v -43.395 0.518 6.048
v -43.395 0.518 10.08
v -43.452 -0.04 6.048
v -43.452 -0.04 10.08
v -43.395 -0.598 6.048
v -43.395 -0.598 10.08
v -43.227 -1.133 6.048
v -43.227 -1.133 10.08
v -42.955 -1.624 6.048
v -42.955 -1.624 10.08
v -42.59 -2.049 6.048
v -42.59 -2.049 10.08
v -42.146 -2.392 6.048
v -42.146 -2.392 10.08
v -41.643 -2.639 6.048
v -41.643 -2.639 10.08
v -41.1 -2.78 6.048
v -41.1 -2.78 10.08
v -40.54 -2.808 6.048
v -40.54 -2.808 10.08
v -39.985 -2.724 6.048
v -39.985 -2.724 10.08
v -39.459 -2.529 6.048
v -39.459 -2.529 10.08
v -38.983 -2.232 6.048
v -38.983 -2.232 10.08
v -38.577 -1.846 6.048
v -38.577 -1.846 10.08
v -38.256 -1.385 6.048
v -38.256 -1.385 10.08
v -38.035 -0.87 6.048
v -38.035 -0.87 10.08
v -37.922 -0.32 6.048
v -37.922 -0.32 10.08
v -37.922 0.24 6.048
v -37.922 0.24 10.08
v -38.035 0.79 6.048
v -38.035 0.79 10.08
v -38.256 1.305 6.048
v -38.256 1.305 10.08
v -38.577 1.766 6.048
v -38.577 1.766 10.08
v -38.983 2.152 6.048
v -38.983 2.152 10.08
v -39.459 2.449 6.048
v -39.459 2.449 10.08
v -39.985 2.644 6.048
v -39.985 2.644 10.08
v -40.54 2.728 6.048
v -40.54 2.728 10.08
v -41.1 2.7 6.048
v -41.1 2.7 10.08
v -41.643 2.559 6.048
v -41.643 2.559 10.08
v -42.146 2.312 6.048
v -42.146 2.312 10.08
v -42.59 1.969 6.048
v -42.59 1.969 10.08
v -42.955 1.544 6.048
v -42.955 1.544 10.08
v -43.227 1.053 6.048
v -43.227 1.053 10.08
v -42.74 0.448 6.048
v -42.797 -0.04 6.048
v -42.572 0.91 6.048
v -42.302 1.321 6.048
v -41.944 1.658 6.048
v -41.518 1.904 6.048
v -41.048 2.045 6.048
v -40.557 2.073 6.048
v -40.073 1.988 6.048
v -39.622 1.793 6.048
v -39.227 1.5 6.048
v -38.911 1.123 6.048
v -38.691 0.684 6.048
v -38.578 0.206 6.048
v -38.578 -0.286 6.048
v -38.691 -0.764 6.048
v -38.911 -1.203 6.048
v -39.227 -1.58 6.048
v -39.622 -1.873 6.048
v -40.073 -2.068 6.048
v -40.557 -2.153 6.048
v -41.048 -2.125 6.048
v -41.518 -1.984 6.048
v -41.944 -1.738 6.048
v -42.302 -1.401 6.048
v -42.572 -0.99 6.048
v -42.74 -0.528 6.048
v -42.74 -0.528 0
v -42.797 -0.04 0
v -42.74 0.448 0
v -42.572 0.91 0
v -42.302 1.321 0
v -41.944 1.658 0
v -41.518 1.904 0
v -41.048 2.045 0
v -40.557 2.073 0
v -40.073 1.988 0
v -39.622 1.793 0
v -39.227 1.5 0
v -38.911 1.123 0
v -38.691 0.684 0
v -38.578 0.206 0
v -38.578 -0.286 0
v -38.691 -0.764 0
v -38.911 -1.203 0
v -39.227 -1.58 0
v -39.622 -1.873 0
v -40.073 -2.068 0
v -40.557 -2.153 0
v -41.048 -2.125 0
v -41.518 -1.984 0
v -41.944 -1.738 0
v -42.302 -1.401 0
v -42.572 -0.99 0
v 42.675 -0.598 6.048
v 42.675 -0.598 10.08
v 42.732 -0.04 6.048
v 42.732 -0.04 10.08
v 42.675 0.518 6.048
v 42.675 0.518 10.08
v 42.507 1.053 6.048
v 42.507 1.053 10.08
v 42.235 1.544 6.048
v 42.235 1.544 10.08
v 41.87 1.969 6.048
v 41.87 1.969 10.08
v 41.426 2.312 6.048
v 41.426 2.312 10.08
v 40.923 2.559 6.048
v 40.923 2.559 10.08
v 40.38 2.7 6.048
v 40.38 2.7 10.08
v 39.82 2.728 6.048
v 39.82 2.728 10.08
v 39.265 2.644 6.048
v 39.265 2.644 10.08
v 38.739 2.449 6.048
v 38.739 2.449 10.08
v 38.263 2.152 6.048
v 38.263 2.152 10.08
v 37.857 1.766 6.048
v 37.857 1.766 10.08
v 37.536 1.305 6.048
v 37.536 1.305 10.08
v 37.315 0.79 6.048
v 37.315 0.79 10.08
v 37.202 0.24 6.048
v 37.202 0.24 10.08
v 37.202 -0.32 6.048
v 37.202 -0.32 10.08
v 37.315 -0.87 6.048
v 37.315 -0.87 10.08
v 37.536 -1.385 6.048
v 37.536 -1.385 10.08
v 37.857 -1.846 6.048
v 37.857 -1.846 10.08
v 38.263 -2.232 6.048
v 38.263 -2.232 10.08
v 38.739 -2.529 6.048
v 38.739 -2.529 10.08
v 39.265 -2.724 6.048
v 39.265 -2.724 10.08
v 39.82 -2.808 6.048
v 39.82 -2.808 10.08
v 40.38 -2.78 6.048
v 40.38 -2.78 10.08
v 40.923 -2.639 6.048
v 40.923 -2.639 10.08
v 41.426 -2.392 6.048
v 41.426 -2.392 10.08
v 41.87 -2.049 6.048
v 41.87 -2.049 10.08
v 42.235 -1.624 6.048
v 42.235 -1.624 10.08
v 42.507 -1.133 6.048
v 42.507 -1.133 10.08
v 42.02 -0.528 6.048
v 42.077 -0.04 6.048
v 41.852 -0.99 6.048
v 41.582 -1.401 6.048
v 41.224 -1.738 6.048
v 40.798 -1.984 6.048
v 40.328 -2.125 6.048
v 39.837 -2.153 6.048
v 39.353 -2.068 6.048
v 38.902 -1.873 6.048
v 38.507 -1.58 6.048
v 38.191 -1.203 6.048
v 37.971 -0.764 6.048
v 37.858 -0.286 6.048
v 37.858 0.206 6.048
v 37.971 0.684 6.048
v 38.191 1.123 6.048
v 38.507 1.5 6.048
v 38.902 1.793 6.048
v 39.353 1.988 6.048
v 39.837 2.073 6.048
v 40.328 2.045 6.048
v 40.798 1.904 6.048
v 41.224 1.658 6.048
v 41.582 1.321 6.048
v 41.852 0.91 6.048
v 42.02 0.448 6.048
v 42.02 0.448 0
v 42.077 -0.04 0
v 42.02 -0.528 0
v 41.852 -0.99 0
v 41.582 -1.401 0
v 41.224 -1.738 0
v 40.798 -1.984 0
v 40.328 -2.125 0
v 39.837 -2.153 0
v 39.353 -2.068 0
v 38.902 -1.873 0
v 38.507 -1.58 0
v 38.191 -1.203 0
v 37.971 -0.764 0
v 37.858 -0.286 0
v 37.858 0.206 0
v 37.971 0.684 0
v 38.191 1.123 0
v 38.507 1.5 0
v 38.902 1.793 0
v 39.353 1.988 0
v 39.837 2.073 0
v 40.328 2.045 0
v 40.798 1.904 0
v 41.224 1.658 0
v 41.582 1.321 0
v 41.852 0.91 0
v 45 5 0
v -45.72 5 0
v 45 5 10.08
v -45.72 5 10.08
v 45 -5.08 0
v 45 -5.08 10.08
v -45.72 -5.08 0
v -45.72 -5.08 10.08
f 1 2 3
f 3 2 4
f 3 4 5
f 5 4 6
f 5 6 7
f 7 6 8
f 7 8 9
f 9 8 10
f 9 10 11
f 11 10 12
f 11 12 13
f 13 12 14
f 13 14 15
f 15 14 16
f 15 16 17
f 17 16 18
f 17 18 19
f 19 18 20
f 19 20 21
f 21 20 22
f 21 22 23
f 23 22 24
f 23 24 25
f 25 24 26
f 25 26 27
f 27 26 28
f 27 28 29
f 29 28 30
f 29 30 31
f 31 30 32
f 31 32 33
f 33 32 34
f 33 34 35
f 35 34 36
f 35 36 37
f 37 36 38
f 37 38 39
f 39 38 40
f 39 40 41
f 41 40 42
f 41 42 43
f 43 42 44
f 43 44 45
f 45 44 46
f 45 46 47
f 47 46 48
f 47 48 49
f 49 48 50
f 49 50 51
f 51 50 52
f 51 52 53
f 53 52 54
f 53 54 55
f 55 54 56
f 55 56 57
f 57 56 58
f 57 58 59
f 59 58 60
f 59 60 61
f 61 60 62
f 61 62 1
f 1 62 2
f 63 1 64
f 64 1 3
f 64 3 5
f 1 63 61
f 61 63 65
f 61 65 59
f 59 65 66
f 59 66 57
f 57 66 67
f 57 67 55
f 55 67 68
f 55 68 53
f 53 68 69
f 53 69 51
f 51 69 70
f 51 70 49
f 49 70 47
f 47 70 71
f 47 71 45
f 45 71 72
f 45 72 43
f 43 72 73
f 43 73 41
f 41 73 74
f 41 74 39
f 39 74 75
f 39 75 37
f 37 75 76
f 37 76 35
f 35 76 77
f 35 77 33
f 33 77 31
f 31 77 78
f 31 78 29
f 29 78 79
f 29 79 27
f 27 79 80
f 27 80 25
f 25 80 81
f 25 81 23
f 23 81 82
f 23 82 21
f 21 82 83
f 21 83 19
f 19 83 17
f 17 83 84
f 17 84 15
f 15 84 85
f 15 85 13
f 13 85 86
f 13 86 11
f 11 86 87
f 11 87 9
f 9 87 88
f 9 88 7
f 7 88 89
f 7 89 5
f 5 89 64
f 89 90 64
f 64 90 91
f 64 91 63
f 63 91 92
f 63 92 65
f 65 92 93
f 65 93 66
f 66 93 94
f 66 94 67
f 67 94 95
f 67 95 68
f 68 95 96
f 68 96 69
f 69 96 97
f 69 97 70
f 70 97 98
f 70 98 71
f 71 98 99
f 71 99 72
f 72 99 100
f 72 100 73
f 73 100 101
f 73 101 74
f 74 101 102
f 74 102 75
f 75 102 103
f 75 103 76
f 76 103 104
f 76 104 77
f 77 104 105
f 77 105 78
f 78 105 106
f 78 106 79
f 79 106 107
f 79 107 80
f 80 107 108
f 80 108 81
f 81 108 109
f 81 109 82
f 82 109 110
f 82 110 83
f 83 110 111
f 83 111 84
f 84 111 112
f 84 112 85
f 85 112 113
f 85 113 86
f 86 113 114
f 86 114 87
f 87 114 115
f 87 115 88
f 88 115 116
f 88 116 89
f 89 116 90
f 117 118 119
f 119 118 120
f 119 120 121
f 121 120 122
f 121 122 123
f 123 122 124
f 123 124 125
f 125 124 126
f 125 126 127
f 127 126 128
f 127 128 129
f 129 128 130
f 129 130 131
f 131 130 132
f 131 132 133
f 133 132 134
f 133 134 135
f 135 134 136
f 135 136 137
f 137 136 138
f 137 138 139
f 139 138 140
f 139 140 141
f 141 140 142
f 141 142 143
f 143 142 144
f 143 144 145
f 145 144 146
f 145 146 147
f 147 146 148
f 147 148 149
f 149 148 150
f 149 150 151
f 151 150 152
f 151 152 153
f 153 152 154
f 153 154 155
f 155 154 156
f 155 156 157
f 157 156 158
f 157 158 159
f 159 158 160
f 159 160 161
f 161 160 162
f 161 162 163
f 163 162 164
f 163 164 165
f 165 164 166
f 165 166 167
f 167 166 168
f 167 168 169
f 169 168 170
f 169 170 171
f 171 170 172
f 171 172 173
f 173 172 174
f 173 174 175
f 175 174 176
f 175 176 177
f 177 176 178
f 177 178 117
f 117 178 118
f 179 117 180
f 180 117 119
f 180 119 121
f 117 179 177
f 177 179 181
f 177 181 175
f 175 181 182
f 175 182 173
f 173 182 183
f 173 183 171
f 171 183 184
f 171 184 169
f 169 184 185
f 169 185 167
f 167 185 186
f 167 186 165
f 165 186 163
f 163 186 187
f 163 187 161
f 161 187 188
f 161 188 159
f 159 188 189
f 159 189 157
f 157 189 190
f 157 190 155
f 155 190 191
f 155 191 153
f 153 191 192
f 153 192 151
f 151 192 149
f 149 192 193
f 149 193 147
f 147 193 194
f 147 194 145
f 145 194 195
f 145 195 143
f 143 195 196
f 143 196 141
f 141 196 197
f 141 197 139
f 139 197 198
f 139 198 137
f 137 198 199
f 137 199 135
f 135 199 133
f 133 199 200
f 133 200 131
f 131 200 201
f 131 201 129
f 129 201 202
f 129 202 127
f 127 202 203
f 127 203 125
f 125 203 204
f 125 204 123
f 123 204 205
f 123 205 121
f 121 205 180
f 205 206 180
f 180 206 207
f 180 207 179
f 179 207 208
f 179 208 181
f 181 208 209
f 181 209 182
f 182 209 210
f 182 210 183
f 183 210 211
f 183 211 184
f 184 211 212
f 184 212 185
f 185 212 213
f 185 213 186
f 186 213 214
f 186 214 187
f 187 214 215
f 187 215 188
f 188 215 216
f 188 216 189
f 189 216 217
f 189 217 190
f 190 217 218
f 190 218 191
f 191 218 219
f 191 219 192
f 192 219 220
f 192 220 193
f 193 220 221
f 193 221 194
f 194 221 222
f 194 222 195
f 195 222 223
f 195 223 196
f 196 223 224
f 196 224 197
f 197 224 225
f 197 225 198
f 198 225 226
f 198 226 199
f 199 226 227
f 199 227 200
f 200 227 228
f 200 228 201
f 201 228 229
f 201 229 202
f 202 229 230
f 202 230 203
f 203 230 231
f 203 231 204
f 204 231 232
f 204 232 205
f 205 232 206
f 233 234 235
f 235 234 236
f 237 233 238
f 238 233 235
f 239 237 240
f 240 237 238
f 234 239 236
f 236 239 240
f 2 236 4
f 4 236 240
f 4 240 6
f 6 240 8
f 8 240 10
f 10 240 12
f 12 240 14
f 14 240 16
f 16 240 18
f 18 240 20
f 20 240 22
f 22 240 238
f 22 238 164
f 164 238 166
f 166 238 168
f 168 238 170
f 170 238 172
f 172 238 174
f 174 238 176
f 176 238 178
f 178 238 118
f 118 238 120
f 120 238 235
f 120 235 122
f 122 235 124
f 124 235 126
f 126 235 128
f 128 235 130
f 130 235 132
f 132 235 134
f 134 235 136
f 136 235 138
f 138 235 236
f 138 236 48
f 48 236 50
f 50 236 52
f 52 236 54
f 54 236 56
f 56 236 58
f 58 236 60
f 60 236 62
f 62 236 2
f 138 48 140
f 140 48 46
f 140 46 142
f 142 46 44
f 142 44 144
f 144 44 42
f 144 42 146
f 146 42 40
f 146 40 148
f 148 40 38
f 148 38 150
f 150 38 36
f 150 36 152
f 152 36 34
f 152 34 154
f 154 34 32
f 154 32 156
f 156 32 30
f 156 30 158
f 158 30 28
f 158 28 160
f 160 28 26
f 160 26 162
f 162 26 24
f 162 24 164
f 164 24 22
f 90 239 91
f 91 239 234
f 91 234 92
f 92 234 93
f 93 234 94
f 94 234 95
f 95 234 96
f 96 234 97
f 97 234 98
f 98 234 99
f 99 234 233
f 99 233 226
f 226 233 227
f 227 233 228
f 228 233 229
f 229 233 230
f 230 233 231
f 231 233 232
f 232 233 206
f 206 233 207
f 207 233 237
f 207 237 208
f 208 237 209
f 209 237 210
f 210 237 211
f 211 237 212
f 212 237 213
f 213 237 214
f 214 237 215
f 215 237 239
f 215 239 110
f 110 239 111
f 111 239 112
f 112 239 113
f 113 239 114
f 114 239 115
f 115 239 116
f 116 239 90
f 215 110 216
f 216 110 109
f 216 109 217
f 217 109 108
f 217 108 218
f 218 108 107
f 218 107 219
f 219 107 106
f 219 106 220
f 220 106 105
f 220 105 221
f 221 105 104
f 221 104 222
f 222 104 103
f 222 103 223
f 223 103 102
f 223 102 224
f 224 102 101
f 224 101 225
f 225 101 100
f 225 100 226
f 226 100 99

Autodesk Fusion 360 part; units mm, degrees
sketch "Sketch1" plane through (0, 0, 0) normal (0, 0, 1) x (1, 0, 0)
  line L0 (-45, -5) -> (45, -5)
  line L1 (45, -5) -> (45, 5)
  line L2 (45, 5) -> (-45, 5)
  line L3 (-45, 5) -> (-45, -5)
  line L4 (-45, -5) -> (45, 5) construction
  line L5 (45, -5) -> (-45, 5) construction
  dimension "d1" = 90
  dimension "d2" = 10
extrude "Extrude1" add sketch "Sketch1" along normal blind 10
sketch "Sketch2" plane through (0, 0, 10) normal (0, 0, 1) x (-1, 0, 0)
  line L0 (45, -5) -> (45, 5)
  line L1 (45, 5) -> (-45, 5)
  line L2 (-45, 5) -> (-45, -5)
  line L3 (-45, -5) -> (45, -5)
  circle A0 centre (-40, 0) radius 2.75
  circle A1 centre (-40, 0) radius 2.1
  dimension "d5" = 5.5
  dimension "d6" = 4.2
  dimension "d7" = 5
  dimension "d8" = 5
extrude "Extrude2" cut sketch "Sketch2" against normal blind 10 contours A1
extrude "Extrude3" cut sketch "Sketch2" against normal blind 4 contours A0
mirror "Mirror1" about plane through (0, 0, 0) normal (1, 0, 0) of "Extrude2", "Extrude3"
scale "Scale1" factor 1.008 about (45, 5, 0) bodies 1
